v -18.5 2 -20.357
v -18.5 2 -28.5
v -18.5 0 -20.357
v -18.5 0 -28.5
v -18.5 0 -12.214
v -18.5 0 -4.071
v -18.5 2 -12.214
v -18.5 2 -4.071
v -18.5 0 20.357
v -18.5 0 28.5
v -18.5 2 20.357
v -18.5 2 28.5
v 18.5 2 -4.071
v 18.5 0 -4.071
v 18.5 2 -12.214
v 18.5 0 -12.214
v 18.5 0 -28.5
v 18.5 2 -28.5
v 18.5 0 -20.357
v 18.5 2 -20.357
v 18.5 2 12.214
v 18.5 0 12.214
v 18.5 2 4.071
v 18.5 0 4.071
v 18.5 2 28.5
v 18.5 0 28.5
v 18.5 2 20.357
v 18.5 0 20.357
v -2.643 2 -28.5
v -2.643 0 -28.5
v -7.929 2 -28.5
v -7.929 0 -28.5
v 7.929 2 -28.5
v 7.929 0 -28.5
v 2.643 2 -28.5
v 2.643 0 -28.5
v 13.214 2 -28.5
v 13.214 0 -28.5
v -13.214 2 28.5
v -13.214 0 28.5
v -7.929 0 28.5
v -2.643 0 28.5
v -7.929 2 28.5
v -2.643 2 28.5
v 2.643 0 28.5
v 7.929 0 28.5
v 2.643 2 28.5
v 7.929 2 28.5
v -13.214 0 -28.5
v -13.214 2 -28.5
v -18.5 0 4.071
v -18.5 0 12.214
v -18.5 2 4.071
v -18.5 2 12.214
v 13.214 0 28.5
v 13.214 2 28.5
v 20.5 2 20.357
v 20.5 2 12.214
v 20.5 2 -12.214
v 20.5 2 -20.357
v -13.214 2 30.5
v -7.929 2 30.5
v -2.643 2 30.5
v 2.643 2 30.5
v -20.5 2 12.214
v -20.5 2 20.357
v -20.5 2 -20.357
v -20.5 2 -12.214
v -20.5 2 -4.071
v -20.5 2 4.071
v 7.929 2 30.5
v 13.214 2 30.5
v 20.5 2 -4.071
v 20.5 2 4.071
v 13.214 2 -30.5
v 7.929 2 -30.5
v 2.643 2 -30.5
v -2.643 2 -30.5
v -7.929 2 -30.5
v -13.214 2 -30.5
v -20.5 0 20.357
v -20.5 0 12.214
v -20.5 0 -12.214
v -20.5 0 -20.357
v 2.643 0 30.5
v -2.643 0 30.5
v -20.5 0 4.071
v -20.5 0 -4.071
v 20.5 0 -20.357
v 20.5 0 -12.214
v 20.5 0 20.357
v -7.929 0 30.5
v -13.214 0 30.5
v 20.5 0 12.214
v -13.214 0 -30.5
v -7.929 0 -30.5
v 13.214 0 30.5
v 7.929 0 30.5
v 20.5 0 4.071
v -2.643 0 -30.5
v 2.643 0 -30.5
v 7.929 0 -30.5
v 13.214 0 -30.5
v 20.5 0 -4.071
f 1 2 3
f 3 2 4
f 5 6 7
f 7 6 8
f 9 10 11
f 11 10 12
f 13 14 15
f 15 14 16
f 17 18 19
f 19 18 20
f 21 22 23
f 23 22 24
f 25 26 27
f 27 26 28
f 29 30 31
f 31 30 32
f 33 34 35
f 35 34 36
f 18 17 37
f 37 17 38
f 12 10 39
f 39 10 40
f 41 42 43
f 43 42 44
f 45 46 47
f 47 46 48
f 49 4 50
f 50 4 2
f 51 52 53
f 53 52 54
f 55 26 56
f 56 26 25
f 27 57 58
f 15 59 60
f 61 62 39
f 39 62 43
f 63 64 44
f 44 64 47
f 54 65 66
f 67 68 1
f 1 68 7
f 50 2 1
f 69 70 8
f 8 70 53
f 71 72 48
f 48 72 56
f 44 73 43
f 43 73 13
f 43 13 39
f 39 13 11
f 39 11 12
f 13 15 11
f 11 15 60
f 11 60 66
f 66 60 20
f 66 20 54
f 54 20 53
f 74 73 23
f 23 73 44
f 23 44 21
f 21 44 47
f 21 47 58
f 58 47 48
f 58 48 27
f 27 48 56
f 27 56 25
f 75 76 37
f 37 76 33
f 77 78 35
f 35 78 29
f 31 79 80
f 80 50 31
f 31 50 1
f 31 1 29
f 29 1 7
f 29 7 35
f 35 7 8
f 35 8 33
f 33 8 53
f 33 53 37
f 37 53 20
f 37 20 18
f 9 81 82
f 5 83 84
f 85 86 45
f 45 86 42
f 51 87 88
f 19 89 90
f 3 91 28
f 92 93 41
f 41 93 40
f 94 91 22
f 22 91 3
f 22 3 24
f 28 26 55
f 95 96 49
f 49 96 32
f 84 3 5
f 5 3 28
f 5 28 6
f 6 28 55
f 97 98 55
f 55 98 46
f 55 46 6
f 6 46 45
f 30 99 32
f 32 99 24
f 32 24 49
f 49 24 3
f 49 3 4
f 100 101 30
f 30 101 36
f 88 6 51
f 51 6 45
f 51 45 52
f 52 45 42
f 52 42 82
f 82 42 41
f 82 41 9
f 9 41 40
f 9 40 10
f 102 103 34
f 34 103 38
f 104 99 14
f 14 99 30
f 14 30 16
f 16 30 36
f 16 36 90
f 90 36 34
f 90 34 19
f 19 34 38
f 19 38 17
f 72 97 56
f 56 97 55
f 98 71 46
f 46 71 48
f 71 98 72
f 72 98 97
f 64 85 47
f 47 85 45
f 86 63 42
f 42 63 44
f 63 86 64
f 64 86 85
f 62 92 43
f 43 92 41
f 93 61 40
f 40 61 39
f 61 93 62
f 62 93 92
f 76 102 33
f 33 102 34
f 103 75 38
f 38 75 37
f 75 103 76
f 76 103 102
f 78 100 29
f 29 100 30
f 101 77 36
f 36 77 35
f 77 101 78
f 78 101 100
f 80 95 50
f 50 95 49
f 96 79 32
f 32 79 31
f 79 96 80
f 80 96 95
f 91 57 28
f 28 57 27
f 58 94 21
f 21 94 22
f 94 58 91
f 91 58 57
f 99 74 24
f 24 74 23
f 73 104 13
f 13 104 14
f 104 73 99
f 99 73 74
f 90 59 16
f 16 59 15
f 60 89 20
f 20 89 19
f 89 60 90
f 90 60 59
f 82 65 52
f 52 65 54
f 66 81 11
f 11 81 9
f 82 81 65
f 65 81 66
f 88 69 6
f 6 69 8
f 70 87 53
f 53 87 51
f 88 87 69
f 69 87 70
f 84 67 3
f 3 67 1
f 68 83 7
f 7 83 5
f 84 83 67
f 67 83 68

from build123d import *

# Parameters (mm, degrees)
SKETCH_4_W      = 37
SKETCH_4_H      = 57
EXTRUDE_1_DEPTH = 2
SKETCH_5_W      = 5.285714285
SKETCH_5_H      = 2
SKETCH_5_W_2    = 5.285714286
EXTRUDE_2_DEPTH = 2
EXTRUDE_START   = -57
SKETCH_5_3_W    = 5.285714285
SKETCH_5_3_H    = 2
SKETCH_5_3_W_2  = 5.285714286
EXTRUDE_3_DEPTH = 2
SKETCH_6_W      = 8.142857143
SKETCH_6_H      = 2
SKETCH_6_W_2    = 8.142857142
EXTRUDE_4_DEPTH = 2
EXTRUDE_START_2 = -37
SKETCH_6_2_W    = 8.142857143
SKETCH_6_2_H    = 2
SKETCH_6_2_W_2  = 8.142857142
EXTRUDE_5_DEPTH = 2


with BuildPart() as part:
    # 草图4 → 凸台-拉伸1 (new body)
    with BuildSketch(Plane(origin=(0, 0, 0), x_dir=(1, 0, 0), z_dir=(0, 1, 0))):
        Rectangle(SKETCH_4_W, SKETCH_4_H)
    extrude(amount=EXTRUDE_1_DEPTH)

    # 草图5 → 凸台-拉伸2 (add)
    with BuildSketch(Plane.XY.offset(28.5)):
        with Locations((10.571428572, 1)):
            Rectangle(SKETCH_5_W, SKETCH_5_H)
        with Locations((0, 1)):
            Rectangle(SKETCH_5_W_2, SKETCH_5_H)
        with Locations((-10.571428572, 1)):
            Rectangle(SKETCH_5_W, SKETCH_5_H)
    extrude(amount=EXTRUDE_2_DEPTH)

    # 草图5<3> → 凸台-拉伸3 (add)
    with BuildSketch(Plane.XY.offset(28.5).offset(EXTRUDE_START)):
        with Locations((10.571428572, 1)):
            Rectangle(SKETCH_5_3_W, SKETCH_5_3_H)
        with Locations((0, 1)):
            Rectangle(SKETCH_5_3_W_2, SKETCH_5_3_H)
        with Locations((-10.571428572, 1)):
            Rectangle(SKETCH_5_3_W, SKETCH_5_3_H)
    extrude(amount=-EXTRUDE_3_DEPTH)

    # 草图6 → 凸台-拉伸4 (add)
    with BuildSketch(Plane(origin=(18.5, 0, 0), x_dir=(0, 0, -1), z_dir=(1, 0, 0))):
        with Locations((-16.285714286, 1)):
            Rectangle(SKETCH_6_W, SKETCH_6_H)
        with Locations((0, 1)):
            Rectangle(SKETCH_6_W_2, SKETCH_6_H)
        with Locations((16.285714286, 1)):
            Rectangle(SKETCH_6_W, SKETCH_6_H)
    extrude(amount=EXTRUDE_4_DEPTH)

    # 草图6<2> → 凸台-拉伸5 (add)
    with BuildSketch(Plane(origin=(18.5, 0, 0), x_dir=(0, 0, -1), z_dir=(1, 0, 0)).offset(EXTRUDE_START_2)):
        with Locations((-16.285714286, 1)):
            Rectangle(SKETCH_6_2_W, SKETCH_6_2_H)
        with Locations((0, 1)):
            Rectangle(SKETCH_6_2_W_2, SKETCH_6_2_H)
        with Locations((16.285714286, 1)):
            Rectangle(SKETCH_6_2_W, SKETCH_6_2_H)
    extrude(amount=-EXTRUDE_5_DEPTH)


solid = part.part
